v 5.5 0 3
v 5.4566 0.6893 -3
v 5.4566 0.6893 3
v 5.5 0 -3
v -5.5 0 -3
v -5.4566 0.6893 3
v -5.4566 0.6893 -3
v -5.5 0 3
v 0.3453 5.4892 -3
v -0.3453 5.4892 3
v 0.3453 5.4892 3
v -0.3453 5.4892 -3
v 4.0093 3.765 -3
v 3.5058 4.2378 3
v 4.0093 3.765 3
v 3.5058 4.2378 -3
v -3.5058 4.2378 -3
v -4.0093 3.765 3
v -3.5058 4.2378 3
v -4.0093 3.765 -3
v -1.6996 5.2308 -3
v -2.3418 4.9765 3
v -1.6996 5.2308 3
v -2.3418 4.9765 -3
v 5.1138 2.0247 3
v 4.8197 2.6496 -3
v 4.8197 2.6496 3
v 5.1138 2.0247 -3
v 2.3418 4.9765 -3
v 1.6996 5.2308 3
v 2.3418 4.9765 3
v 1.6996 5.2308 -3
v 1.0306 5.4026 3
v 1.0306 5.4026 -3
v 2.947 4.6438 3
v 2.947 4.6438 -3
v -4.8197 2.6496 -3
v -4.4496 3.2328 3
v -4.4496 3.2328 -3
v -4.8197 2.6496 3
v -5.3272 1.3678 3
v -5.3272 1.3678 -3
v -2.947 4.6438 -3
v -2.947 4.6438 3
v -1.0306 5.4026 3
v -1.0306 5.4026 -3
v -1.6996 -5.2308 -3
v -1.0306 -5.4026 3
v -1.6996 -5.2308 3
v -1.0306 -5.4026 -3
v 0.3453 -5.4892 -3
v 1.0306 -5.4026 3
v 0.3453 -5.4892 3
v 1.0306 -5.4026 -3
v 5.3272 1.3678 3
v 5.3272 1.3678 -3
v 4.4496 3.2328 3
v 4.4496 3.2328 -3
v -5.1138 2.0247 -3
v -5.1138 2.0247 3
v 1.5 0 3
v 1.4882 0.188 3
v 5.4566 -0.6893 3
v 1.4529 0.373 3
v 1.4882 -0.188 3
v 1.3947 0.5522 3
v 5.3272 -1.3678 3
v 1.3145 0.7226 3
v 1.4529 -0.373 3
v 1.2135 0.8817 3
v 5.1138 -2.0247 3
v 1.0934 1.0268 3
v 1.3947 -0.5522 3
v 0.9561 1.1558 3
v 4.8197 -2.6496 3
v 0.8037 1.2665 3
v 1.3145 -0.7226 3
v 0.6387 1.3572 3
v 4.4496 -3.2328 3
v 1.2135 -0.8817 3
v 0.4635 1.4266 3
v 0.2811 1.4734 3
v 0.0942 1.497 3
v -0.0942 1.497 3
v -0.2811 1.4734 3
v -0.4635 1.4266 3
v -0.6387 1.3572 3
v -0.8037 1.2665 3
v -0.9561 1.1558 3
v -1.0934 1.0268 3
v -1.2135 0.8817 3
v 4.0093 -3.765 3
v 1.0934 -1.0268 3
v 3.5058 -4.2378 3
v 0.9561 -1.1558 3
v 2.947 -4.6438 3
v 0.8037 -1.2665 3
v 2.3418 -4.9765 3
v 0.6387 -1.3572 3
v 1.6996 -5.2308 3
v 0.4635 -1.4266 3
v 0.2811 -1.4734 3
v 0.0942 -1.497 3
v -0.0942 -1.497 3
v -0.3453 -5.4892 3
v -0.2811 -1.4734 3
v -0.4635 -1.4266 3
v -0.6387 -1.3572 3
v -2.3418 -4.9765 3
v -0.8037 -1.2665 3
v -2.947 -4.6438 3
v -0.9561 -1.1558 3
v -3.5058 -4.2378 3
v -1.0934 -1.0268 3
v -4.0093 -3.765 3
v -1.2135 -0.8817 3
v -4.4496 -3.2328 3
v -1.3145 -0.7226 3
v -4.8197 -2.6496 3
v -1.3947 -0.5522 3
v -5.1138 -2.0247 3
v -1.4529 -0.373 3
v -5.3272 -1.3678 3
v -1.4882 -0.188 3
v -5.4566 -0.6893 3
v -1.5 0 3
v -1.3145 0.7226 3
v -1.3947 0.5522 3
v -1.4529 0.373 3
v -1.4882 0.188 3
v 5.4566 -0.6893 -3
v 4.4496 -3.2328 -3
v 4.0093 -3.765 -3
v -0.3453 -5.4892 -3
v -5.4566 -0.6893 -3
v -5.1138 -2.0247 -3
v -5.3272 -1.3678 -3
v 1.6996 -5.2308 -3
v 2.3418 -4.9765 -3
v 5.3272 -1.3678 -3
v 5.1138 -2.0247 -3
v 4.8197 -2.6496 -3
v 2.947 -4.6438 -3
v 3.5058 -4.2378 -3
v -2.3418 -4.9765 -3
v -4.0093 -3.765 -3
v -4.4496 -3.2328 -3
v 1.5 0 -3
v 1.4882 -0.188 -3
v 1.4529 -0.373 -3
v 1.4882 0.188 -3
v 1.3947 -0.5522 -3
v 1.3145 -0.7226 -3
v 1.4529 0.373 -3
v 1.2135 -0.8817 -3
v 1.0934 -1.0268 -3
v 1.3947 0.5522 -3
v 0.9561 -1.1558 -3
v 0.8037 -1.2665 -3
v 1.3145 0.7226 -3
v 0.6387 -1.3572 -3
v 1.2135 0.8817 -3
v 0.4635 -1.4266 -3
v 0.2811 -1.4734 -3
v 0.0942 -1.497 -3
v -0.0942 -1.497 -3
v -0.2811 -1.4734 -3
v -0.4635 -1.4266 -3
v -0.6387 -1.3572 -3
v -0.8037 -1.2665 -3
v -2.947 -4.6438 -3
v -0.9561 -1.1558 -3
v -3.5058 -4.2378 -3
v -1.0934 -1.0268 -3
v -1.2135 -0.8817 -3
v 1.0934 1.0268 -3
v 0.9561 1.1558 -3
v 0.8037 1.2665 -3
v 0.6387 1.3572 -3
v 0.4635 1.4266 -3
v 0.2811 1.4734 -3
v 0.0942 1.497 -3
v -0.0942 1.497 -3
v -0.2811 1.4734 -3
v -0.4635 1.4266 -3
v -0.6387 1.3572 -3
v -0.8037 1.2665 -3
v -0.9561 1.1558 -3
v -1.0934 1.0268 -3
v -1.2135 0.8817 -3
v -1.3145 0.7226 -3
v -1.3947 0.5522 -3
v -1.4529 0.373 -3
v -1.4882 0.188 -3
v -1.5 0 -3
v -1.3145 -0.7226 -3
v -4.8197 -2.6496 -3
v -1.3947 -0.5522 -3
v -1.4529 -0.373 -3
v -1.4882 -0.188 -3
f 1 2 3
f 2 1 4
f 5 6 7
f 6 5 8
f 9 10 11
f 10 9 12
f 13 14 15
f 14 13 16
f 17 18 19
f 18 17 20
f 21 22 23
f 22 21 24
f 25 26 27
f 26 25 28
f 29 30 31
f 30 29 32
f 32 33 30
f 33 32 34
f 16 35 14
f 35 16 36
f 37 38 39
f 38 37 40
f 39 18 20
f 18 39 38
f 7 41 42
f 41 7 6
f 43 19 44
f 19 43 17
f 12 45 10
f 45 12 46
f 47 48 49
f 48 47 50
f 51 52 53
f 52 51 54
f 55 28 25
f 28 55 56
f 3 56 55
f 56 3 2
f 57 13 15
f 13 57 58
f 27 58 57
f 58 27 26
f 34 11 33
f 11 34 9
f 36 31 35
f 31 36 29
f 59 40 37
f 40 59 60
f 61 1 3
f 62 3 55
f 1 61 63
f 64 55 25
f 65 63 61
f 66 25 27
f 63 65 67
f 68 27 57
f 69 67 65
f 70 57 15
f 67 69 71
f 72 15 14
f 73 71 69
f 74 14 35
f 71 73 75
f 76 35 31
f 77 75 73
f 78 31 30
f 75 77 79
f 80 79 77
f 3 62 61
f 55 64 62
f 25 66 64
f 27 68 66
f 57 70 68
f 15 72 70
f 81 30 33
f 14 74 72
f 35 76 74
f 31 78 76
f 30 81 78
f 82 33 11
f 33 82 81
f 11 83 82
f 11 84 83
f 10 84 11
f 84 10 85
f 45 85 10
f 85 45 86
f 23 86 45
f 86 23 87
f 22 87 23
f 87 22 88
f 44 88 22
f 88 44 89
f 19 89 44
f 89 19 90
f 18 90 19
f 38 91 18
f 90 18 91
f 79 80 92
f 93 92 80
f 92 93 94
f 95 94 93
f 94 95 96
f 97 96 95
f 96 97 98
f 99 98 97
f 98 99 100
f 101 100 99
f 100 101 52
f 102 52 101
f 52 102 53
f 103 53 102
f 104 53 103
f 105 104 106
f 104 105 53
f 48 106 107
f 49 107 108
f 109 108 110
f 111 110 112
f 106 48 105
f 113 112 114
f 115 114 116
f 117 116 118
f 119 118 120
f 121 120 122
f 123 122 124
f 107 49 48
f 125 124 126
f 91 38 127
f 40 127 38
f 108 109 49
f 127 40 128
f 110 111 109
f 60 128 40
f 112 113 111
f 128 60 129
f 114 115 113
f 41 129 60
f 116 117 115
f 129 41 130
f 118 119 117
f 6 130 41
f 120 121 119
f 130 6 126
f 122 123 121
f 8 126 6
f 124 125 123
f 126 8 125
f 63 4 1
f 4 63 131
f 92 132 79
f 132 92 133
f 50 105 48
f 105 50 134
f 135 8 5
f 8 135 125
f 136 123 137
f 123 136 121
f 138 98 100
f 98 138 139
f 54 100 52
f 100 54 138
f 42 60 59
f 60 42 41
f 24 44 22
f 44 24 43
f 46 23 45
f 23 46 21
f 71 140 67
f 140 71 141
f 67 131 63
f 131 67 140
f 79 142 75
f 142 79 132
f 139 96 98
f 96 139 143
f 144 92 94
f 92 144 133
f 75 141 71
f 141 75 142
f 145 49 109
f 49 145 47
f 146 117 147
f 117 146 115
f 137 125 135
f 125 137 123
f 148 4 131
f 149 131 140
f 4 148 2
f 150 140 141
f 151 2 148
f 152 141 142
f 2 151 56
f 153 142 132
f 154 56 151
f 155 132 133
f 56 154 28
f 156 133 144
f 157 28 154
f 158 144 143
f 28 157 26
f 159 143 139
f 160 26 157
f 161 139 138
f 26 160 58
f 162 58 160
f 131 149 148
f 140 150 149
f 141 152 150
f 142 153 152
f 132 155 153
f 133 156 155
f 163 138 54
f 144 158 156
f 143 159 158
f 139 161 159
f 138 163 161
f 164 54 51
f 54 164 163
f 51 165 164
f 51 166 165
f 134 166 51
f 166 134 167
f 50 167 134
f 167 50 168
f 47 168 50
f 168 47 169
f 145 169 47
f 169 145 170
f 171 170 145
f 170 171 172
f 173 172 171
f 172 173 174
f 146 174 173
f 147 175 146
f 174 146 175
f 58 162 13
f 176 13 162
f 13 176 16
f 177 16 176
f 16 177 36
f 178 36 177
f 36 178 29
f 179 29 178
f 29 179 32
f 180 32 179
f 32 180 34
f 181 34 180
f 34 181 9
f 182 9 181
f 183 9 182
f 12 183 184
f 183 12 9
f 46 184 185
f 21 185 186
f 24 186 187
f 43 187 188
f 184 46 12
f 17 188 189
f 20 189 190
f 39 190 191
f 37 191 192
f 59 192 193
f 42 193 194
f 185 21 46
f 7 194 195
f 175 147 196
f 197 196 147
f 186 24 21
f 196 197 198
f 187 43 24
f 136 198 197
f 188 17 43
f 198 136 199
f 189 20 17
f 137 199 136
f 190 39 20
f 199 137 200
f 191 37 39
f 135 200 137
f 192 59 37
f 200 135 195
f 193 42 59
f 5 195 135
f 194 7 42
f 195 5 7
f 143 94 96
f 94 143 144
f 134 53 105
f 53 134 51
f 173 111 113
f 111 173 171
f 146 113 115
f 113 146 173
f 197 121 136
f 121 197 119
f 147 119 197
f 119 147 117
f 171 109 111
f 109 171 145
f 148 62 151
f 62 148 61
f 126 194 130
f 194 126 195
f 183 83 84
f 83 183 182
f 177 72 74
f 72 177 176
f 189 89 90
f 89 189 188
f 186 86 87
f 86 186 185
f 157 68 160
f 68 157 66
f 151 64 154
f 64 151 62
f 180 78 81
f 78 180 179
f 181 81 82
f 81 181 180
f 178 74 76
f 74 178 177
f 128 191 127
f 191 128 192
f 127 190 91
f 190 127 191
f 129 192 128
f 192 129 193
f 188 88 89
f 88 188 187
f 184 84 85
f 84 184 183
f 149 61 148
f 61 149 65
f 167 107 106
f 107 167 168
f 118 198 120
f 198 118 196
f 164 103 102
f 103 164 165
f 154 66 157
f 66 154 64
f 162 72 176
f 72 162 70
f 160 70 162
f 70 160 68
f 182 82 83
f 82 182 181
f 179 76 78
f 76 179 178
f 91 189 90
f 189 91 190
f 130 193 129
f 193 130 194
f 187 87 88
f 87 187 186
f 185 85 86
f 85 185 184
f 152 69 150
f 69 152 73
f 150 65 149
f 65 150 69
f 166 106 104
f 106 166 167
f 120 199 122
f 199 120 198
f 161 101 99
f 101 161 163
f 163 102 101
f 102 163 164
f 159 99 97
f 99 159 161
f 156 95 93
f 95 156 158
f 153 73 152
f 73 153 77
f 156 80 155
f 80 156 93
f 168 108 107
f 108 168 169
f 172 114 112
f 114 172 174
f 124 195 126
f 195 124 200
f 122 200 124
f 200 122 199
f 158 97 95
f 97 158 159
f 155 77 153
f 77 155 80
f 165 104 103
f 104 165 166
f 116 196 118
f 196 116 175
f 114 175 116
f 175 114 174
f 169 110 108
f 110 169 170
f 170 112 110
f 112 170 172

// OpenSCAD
$fn = 50;


difference() {
	union() {
		translate(v = [0, 0, -3.0000000000]) {
			cylinder(h = 6, r = 5.5000000000);
		}
	}
	union() {
		translate(v = [0, 0, -100.0000000000]) {
			cylinder(h = 200, r = 1.5000000000);
		}
	}
}
